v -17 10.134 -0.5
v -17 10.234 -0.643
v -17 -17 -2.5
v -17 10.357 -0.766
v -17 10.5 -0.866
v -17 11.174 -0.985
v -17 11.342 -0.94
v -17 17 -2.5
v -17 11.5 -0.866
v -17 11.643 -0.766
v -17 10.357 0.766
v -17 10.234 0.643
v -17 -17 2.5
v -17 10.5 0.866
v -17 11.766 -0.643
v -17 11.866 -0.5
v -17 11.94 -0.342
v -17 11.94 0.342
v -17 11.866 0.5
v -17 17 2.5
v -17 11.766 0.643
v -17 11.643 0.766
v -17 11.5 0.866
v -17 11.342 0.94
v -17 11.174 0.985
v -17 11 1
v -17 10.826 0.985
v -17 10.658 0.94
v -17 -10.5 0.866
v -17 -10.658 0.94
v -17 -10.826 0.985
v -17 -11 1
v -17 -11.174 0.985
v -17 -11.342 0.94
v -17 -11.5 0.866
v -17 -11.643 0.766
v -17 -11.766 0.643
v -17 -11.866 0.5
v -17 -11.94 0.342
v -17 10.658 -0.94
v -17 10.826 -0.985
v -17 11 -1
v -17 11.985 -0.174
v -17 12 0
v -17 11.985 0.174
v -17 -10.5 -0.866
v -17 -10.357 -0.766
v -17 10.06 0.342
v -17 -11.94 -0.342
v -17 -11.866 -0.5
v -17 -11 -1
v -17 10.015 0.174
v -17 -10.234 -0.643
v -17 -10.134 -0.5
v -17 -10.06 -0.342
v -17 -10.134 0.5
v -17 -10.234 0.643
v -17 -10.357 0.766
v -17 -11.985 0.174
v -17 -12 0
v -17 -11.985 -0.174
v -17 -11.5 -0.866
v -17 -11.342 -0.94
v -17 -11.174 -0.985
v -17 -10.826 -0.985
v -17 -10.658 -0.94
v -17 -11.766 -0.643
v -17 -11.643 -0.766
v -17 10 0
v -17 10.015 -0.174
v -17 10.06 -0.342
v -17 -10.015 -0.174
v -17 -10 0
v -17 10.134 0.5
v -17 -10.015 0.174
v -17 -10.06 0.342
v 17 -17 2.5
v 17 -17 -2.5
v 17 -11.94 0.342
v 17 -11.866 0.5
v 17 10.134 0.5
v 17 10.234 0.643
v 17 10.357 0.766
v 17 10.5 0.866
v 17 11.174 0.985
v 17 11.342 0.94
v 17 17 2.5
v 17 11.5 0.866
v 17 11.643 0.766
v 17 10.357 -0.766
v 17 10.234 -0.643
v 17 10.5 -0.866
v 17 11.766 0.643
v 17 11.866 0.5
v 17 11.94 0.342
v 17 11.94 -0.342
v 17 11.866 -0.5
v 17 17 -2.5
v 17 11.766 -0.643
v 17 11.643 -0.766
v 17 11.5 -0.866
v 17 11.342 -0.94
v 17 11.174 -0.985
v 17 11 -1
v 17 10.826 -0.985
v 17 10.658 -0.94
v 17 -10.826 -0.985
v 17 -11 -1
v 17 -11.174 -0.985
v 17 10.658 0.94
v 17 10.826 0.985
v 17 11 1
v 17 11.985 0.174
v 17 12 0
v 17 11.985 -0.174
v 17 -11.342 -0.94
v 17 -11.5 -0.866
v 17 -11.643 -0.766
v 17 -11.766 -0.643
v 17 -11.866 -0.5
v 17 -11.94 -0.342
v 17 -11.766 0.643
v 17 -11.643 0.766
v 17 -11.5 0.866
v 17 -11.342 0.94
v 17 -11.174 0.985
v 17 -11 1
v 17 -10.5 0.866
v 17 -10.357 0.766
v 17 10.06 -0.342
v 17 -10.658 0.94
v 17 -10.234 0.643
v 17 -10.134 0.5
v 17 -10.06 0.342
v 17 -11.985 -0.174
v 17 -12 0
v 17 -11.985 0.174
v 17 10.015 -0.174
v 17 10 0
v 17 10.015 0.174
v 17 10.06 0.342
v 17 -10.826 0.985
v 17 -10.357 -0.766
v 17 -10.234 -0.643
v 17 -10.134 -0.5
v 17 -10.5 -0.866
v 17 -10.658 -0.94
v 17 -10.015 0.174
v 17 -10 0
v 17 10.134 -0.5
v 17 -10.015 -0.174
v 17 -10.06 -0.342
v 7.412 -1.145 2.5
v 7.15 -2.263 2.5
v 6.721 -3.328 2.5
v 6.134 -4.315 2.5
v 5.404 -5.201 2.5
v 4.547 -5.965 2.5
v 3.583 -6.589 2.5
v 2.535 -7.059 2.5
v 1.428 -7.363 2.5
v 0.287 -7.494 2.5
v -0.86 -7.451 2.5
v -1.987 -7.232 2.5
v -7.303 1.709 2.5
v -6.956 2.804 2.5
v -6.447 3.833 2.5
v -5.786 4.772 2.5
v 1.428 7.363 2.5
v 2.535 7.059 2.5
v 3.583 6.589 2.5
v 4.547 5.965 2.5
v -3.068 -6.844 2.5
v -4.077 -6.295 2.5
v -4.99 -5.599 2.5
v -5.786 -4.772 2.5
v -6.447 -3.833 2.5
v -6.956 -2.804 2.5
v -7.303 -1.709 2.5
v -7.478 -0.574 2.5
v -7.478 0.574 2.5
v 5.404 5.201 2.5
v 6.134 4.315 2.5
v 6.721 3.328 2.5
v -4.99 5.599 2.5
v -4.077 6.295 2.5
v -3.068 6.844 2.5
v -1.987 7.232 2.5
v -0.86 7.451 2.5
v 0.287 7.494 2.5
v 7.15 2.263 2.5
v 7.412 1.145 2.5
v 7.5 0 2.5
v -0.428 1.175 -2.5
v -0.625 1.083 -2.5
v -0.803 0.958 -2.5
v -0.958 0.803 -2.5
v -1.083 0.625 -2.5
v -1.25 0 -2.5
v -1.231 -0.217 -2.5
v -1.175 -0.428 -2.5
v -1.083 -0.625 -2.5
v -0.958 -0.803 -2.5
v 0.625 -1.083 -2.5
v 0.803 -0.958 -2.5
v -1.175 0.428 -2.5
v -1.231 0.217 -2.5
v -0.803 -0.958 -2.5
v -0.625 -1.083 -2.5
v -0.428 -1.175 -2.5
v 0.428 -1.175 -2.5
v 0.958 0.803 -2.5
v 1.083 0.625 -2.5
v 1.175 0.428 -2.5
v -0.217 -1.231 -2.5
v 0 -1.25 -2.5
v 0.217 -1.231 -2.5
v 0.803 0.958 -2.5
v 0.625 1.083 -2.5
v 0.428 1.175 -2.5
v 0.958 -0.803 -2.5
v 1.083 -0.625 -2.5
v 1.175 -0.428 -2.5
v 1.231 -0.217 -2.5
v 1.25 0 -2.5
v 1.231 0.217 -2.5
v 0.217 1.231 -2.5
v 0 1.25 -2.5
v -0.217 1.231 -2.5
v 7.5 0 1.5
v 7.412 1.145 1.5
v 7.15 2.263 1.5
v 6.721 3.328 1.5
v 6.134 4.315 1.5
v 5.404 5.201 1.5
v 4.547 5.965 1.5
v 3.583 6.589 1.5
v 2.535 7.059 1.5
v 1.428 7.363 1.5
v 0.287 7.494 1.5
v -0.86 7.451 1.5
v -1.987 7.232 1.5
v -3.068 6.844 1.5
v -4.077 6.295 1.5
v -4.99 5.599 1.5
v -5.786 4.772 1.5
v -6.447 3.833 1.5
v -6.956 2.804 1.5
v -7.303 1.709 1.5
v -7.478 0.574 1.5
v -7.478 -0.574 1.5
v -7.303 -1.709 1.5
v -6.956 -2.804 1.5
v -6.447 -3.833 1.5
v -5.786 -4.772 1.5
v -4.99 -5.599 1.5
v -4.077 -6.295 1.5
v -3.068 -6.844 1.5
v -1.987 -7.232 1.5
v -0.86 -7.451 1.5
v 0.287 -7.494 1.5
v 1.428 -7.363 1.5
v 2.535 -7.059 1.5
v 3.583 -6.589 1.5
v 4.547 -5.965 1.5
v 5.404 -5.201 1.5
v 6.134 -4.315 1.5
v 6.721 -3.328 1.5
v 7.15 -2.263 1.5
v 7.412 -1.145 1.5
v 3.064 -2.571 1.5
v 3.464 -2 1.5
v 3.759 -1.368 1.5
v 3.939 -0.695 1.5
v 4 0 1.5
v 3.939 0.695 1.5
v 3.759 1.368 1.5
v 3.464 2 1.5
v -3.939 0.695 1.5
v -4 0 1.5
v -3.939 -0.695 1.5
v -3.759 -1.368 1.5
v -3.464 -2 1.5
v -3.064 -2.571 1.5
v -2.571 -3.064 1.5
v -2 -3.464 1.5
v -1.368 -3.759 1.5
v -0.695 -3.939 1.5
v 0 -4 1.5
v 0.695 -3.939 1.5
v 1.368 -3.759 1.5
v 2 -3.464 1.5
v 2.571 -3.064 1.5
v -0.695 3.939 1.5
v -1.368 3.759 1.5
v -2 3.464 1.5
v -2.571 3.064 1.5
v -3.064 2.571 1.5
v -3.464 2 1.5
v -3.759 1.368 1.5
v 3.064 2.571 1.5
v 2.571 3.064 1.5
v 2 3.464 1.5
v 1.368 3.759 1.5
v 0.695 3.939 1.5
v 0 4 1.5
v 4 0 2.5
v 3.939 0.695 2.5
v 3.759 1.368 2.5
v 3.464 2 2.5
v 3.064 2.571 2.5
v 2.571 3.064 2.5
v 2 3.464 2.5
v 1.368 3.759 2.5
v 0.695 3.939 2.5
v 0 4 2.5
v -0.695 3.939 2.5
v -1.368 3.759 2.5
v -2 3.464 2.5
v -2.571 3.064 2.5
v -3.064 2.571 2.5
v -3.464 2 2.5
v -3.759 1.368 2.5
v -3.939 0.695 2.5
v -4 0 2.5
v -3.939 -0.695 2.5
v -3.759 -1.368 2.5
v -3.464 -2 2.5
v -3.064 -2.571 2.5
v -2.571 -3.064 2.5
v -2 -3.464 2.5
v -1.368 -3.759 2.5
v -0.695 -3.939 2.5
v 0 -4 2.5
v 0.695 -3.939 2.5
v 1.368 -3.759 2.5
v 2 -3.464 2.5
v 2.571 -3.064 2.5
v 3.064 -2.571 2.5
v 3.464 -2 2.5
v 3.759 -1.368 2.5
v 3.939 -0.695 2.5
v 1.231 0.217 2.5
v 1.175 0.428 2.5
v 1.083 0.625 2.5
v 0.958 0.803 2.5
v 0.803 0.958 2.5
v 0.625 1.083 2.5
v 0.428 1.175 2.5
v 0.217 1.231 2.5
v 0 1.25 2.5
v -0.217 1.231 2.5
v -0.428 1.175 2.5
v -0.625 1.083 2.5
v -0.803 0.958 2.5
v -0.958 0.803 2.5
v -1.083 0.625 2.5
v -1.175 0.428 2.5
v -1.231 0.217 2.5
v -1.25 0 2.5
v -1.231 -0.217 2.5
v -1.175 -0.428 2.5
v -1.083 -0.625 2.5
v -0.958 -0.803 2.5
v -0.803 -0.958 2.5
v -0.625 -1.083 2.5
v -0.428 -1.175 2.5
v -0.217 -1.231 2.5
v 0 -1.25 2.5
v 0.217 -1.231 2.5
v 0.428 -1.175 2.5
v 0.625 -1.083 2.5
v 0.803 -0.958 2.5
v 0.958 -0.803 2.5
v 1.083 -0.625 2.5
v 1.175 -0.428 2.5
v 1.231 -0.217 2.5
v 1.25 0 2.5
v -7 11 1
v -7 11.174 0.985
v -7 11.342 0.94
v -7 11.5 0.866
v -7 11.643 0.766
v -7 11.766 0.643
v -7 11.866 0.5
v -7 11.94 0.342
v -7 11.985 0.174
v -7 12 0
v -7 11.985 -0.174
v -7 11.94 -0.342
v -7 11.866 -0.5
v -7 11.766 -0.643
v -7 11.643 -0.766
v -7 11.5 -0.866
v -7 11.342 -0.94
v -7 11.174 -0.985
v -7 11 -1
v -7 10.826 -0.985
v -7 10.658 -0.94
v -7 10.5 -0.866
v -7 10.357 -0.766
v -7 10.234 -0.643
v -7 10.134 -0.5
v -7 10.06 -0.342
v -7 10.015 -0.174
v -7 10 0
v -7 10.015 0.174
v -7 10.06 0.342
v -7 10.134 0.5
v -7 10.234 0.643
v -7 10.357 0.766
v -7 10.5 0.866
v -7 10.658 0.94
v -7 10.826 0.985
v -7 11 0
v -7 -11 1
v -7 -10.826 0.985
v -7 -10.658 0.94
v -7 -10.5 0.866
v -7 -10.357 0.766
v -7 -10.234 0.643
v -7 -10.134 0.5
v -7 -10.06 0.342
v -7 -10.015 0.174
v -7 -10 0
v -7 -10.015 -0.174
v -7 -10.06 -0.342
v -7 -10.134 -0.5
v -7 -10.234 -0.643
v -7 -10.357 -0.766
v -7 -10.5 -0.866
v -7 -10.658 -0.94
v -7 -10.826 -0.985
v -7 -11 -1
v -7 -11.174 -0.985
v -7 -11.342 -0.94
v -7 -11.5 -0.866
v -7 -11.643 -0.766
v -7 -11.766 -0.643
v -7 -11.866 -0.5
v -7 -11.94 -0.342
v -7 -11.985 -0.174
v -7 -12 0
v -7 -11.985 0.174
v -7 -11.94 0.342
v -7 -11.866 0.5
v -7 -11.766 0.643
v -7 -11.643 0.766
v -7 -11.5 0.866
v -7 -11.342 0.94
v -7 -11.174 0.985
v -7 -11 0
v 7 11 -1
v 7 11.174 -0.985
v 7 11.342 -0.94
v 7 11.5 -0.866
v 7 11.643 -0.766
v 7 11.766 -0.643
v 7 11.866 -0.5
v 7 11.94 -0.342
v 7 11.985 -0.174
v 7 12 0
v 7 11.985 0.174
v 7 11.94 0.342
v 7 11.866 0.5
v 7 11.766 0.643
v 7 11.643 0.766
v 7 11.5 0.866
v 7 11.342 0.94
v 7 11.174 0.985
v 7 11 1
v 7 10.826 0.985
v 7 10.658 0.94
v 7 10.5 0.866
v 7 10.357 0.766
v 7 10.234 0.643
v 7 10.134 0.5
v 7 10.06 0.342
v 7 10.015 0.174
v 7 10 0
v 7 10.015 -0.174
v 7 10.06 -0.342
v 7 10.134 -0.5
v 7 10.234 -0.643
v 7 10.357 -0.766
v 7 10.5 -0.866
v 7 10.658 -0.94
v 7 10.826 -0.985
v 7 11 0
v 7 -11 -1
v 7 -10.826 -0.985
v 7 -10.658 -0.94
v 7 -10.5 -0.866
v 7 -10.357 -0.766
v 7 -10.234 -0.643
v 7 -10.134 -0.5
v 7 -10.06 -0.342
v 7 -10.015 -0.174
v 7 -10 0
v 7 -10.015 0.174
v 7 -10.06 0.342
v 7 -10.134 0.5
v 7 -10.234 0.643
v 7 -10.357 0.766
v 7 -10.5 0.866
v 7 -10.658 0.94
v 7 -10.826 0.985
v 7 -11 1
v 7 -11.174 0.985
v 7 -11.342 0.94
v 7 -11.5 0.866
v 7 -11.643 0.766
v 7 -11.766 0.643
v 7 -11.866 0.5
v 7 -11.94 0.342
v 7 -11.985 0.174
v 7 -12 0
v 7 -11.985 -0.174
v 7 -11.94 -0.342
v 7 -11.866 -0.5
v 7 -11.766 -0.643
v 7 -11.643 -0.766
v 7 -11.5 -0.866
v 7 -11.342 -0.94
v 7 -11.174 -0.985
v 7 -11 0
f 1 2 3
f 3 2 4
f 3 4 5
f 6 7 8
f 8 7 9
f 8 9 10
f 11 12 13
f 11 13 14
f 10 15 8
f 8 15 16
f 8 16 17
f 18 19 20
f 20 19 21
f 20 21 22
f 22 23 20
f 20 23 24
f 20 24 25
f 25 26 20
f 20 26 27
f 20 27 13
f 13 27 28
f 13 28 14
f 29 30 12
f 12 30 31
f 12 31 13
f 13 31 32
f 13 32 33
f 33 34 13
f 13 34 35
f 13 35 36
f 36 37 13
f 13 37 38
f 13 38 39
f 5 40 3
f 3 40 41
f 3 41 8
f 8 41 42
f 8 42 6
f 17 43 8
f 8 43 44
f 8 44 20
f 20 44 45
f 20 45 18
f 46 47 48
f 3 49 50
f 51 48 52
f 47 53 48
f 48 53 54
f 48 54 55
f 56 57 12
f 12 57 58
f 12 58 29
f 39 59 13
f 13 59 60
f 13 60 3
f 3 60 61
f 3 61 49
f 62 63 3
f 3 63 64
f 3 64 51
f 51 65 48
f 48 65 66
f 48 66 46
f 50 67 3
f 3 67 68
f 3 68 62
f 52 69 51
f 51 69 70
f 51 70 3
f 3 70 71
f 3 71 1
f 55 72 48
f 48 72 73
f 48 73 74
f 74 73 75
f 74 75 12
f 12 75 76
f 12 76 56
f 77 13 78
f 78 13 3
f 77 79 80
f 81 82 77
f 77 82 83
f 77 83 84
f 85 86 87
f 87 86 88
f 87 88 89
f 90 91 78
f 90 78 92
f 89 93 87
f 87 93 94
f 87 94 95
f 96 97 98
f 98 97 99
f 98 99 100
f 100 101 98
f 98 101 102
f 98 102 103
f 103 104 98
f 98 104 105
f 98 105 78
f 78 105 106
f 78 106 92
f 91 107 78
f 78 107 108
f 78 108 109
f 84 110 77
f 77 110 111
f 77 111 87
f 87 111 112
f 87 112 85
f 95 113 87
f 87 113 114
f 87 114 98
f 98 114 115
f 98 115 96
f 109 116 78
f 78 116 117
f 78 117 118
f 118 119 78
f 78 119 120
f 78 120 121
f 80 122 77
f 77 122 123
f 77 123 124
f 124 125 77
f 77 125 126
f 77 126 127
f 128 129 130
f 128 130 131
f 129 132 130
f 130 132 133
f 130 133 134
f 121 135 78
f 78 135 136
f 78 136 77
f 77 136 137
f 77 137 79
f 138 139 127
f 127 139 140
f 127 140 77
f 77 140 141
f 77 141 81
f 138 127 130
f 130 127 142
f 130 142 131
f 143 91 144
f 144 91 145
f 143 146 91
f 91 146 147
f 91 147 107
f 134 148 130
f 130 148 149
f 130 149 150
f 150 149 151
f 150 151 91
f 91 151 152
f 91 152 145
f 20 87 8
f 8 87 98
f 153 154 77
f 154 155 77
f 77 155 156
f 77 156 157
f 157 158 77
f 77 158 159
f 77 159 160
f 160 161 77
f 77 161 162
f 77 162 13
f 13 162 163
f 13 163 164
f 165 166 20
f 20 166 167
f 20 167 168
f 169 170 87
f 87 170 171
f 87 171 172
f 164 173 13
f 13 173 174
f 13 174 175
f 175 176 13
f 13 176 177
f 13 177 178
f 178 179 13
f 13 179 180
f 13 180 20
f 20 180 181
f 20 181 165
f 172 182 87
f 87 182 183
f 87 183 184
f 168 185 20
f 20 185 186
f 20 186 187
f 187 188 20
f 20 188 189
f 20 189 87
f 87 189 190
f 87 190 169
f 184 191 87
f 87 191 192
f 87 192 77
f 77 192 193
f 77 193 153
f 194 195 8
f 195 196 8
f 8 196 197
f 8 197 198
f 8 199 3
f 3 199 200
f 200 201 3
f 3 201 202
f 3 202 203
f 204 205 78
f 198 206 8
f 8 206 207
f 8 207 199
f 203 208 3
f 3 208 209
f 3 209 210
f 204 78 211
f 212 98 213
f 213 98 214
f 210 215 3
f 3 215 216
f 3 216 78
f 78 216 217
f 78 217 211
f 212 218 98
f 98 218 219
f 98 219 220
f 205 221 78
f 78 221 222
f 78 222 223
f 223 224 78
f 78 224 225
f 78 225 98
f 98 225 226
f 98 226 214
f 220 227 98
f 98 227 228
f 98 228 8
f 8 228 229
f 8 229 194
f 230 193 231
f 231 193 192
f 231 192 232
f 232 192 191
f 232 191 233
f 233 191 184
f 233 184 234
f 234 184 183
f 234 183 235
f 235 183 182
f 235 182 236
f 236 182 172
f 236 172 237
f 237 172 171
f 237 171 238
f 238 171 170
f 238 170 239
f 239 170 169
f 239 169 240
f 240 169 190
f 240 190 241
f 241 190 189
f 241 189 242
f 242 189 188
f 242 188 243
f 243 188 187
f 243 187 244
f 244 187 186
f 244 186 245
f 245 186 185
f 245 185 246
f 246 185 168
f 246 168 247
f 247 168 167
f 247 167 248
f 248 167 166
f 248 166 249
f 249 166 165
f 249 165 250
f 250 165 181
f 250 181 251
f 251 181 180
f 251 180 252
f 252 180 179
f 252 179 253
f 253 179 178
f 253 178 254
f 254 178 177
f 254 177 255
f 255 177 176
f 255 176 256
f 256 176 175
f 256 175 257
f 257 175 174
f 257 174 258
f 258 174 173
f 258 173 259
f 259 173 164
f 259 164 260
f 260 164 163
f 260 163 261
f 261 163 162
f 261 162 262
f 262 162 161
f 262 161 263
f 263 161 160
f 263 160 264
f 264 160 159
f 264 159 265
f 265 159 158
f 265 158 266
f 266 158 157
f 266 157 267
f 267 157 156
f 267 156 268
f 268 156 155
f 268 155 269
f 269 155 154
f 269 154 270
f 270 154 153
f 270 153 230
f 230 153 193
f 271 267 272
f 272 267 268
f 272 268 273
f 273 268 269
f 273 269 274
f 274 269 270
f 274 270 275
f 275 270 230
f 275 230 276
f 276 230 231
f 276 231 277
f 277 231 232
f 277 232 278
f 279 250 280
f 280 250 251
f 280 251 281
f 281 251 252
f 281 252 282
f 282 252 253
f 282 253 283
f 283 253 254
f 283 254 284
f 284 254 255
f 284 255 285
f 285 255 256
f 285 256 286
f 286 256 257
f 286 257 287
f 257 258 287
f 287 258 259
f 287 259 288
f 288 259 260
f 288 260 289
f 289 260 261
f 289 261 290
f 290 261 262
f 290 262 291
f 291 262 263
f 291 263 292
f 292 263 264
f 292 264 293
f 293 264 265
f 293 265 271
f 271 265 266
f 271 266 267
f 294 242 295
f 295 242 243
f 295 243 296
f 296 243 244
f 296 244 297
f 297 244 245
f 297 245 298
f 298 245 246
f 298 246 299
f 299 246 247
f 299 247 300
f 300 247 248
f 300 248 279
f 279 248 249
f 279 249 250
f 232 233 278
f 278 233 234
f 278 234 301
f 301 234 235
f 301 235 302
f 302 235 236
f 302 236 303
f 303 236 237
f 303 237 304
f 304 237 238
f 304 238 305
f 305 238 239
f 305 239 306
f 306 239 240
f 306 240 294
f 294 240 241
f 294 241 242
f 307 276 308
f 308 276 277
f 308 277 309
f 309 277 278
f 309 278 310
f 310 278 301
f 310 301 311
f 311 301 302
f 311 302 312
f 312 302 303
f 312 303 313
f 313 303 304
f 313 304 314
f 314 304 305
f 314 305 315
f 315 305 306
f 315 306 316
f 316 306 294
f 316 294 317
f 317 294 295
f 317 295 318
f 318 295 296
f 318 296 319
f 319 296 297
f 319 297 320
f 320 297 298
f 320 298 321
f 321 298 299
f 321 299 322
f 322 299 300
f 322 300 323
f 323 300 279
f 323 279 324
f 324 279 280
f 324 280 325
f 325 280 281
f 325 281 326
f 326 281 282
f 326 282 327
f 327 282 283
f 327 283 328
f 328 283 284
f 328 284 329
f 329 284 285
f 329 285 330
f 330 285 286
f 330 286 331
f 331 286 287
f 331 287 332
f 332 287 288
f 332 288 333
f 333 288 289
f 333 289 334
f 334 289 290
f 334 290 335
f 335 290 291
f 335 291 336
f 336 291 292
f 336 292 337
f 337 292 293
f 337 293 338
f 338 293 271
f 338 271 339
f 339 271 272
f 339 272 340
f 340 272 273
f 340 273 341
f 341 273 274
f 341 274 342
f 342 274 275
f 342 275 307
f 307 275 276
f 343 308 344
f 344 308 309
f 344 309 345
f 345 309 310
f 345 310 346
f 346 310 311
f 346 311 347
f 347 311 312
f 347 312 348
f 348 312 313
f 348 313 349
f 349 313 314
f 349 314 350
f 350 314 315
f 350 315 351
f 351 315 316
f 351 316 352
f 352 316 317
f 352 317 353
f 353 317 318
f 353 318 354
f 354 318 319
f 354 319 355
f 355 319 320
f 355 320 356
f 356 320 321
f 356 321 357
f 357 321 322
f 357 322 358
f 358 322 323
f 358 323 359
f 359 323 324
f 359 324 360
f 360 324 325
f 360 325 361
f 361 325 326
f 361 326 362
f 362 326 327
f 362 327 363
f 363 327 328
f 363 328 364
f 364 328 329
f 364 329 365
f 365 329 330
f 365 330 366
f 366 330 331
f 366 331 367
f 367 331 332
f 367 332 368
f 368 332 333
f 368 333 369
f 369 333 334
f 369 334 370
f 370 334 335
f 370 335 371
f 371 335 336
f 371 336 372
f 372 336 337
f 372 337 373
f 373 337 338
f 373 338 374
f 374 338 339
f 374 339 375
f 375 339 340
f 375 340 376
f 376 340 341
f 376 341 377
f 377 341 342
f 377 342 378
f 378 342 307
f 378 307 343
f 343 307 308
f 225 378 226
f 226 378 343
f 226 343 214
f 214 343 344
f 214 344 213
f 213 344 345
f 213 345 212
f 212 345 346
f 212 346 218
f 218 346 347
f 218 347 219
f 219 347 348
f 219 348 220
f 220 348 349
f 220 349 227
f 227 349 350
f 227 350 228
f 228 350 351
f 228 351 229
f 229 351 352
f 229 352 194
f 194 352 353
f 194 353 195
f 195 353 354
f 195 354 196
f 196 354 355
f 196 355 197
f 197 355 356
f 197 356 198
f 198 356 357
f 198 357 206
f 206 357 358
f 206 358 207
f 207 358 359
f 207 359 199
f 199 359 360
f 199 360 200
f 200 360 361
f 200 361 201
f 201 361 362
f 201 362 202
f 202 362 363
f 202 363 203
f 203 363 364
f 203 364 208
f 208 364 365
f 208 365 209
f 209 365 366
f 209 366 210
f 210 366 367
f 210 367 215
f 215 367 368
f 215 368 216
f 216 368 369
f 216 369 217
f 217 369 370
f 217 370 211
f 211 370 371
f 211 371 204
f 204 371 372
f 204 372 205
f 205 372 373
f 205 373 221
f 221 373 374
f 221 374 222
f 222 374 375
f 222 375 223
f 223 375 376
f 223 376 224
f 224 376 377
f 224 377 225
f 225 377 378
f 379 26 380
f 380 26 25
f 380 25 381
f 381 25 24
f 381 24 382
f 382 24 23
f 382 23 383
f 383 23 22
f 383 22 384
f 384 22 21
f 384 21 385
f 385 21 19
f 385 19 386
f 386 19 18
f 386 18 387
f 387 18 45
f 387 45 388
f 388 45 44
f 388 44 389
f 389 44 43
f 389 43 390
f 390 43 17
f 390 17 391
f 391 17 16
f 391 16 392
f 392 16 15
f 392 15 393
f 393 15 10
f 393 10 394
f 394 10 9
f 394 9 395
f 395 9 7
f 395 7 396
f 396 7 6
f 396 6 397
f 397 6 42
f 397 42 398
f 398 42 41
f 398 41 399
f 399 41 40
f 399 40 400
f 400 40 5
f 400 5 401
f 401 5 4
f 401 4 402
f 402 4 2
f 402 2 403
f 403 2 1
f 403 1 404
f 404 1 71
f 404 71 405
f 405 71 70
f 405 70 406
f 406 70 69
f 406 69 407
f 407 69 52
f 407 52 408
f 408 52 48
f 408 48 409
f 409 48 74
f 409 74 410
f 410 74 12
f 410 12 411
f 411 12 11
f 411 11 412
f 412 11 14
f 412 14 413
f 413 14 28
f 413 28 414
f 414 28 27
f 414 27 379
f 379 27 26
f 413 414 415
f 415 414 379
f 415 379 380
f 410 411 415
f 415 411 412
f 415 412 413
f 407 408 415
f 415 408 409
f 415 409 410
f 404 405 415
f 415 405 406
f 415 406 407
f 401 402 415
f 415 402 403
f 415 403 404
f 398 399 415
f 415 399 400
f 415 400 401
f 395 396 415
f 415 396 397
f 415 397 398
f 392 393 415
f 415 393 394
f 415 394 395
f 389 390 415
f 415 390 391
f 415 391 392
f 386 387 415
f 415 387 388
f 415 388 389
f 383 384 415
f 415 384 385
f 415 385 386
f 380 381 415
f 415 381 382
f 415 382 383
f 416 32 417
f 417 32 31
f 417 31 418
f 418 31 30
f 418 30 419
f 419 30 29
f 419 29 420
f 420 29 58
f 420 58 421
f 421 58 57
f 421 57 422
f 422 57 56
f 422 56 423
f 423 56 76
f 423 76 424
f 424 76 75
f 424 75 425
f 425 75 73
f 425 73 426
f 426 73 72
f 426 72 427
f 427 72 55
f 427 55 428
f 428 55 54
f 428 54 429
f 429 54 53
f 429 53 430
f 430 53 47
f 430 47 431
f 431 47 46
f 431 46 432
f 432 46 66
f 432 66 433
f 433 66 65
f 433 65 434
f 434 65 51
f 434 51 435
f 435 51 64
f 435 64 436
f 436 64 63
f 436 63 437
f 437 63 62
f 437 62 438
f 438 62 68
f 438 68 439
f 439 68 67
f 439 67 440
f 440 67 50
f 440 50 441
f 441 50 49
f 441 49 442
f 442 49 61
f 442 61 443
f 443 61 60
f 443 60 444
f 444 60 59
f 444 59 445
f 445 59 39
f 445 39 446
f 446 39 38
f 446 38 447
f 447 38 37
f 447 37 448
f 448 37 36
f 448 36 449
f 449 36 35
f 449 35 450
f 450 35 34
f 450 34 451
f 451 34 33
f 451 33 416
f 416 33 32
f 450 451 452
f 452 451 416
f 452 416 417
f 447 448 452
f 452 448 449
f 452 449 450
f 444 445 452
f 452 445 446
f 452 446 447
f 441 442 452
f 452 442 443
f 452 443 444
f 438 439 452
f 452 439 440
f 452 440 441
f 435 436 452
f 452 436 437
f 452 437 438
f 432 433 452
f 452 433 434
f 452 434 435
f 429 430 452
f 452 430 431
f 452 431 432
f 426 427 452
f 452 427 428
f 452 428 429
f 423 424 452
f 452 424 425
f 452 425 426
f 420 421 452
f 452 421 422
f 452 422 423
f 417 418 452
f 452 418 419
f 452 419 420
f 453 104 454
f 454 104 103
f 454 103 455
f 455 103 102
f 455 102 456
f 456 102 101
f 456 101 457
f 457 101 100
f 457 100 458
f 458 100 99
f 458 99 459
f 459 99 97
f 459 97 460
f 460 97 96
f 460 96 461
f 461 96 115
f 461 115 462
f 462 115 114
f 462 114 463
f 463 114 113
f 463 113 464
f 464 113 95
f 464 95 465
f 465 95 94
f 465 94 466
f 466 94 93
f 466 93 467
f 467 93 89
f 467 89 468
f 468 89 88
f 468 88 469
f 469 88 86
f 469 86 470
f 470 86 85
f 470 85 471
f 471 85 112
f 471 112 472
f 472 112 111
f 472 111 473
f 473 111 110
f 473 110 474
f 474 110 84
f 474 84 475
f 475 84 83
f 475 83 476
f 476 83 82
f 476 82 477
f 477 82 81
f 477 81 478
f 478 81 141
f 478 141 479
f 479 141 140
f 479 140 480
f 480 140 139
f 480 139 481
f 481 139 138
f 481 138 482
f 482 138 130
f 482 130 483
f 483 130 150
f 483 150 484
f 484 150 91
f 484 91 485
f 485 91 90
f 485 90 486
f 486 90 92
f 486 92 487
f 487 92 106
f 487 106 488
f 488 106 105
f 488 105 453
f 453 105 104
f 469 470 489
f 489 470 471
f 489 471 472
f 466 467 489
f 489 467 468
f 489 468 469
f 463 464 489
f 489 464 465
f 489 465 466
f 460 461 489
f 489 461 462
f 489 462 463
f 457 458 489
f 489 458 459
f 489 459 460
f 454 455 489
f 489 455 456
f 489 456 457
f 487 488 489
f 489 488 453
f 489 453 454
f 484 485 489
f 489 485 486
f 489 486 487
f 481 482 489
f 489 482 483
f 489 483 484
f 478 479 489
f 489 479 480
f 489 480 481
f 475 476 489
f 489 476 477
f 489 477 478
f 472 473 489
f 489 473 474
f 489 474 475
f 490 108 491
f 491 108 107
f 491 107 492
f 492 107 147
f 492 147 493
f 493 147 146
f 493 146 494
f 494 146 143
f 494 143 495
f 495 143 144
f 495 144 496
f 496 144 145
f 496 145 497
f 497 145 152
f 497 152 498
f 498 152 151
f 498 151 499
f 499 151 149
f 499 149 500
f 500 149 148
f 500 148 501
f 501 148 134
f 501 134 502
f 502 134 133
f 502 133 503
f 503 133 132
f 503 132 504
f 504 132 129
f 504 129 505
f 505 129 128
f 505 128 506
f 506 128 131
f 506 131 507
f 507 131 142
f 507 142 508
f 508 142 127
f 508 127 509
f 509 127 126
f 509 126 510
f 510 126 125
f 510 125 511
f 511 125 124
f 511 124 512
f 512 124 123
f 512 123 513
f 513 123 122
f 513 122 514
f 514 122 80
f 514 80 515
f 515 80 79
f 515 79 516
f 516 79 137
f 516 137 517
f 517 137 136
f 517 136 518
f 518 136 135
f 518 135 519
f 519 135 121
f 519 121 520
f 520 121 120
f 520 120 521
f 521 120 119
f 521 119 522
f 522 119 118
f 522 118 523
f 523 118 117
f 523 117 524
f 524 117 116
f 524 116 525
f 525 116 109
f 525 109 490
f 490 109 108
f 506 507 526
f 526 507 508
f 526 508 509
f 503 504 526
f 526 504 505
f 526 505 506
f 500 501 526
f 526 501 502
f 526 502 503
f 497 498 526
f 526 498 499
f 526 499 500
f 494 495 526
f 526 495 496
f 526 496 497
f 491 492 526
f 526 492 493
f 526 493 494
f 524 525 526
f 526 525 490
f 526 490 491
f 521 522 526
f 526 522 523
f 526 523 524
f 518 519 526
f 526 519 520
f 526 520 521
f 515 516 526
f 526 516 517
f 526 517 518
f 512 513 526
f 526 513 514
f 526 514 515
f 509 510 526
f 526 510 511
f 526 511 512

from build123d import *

# Parameters (mm, degrees)
ESBO_O1_W                = 34
ESBO_O1_H                = 34
RESSALTO_EXTRUS_O1_DEPTH = 2.5
ESBO_O2_R                = 7.5
ESBO_O2_R_2              = 4
CORTE_EXTRUS_O1_DEPTH    = 1
ESBO_O3_R                = 1.25
CORTE_EXTRUS_O2_DEPTH    = 5
ESBO_O4_R                = 1
CORTE_EXTRUS_O3_DEPTH    = 10


with BuildPart() as part:
    # Esboço1 → Ressalto-extrusão1 (new, symmetric)
    with BuildSketch(Plane.XY):
        Rectangle(ESBO_O1_W, ESBO_O1_H)
    extrude(amount=RESSALTO_EXTRUS_O1_DEPTH, both=True)

    # Esboço2 → Corte-extrusão1 (cut)
    with BuildSketch(Plane.XY.offset(2.5)):
        Circle(ESBO_O2_R)
        Circle(ESBO_O2_R_2, mode=Mode.SUBTRACT)
    extrude(amount=-CORTE_EXTRUS_O1_DEPTH, mode=Mode.SUBTRACT)

    # Esboço3 → Corte-extrusão2 (cut)
    with BuildSketch(Plane.XY.offset(2.5)):
        Circle(ESBO_O3_R)
    extrude(amount=-CORTE_EXTRUS_O2_DEPTH, mode=Mode.SUBTRACT)

    # Esboço4 → Corte-extrusão3 (cut)
    with BuildSketch(Plane.ZY.offset(17)):
        with Locations((0, 11)):
            Circle(ESBO_O4_R)
        with Locations((0, -11)):
            Circle(ESBO_O4_R)
    corte_extrus_o3 = extrude(amount=-CORTE_EXTRUS_O3_DEPTH, mode=Mode.SUBTRACT)

    # Espelhar1: Corte-extrusão3 across plane
    add(corte_extrus_o3.mirror(Plane(origin=(0, 0, 0), x_dir=(0, 0, 1), z_dir=(1, 0, 0))), mode=Mode.SUBTRACT)


solid = part.part
